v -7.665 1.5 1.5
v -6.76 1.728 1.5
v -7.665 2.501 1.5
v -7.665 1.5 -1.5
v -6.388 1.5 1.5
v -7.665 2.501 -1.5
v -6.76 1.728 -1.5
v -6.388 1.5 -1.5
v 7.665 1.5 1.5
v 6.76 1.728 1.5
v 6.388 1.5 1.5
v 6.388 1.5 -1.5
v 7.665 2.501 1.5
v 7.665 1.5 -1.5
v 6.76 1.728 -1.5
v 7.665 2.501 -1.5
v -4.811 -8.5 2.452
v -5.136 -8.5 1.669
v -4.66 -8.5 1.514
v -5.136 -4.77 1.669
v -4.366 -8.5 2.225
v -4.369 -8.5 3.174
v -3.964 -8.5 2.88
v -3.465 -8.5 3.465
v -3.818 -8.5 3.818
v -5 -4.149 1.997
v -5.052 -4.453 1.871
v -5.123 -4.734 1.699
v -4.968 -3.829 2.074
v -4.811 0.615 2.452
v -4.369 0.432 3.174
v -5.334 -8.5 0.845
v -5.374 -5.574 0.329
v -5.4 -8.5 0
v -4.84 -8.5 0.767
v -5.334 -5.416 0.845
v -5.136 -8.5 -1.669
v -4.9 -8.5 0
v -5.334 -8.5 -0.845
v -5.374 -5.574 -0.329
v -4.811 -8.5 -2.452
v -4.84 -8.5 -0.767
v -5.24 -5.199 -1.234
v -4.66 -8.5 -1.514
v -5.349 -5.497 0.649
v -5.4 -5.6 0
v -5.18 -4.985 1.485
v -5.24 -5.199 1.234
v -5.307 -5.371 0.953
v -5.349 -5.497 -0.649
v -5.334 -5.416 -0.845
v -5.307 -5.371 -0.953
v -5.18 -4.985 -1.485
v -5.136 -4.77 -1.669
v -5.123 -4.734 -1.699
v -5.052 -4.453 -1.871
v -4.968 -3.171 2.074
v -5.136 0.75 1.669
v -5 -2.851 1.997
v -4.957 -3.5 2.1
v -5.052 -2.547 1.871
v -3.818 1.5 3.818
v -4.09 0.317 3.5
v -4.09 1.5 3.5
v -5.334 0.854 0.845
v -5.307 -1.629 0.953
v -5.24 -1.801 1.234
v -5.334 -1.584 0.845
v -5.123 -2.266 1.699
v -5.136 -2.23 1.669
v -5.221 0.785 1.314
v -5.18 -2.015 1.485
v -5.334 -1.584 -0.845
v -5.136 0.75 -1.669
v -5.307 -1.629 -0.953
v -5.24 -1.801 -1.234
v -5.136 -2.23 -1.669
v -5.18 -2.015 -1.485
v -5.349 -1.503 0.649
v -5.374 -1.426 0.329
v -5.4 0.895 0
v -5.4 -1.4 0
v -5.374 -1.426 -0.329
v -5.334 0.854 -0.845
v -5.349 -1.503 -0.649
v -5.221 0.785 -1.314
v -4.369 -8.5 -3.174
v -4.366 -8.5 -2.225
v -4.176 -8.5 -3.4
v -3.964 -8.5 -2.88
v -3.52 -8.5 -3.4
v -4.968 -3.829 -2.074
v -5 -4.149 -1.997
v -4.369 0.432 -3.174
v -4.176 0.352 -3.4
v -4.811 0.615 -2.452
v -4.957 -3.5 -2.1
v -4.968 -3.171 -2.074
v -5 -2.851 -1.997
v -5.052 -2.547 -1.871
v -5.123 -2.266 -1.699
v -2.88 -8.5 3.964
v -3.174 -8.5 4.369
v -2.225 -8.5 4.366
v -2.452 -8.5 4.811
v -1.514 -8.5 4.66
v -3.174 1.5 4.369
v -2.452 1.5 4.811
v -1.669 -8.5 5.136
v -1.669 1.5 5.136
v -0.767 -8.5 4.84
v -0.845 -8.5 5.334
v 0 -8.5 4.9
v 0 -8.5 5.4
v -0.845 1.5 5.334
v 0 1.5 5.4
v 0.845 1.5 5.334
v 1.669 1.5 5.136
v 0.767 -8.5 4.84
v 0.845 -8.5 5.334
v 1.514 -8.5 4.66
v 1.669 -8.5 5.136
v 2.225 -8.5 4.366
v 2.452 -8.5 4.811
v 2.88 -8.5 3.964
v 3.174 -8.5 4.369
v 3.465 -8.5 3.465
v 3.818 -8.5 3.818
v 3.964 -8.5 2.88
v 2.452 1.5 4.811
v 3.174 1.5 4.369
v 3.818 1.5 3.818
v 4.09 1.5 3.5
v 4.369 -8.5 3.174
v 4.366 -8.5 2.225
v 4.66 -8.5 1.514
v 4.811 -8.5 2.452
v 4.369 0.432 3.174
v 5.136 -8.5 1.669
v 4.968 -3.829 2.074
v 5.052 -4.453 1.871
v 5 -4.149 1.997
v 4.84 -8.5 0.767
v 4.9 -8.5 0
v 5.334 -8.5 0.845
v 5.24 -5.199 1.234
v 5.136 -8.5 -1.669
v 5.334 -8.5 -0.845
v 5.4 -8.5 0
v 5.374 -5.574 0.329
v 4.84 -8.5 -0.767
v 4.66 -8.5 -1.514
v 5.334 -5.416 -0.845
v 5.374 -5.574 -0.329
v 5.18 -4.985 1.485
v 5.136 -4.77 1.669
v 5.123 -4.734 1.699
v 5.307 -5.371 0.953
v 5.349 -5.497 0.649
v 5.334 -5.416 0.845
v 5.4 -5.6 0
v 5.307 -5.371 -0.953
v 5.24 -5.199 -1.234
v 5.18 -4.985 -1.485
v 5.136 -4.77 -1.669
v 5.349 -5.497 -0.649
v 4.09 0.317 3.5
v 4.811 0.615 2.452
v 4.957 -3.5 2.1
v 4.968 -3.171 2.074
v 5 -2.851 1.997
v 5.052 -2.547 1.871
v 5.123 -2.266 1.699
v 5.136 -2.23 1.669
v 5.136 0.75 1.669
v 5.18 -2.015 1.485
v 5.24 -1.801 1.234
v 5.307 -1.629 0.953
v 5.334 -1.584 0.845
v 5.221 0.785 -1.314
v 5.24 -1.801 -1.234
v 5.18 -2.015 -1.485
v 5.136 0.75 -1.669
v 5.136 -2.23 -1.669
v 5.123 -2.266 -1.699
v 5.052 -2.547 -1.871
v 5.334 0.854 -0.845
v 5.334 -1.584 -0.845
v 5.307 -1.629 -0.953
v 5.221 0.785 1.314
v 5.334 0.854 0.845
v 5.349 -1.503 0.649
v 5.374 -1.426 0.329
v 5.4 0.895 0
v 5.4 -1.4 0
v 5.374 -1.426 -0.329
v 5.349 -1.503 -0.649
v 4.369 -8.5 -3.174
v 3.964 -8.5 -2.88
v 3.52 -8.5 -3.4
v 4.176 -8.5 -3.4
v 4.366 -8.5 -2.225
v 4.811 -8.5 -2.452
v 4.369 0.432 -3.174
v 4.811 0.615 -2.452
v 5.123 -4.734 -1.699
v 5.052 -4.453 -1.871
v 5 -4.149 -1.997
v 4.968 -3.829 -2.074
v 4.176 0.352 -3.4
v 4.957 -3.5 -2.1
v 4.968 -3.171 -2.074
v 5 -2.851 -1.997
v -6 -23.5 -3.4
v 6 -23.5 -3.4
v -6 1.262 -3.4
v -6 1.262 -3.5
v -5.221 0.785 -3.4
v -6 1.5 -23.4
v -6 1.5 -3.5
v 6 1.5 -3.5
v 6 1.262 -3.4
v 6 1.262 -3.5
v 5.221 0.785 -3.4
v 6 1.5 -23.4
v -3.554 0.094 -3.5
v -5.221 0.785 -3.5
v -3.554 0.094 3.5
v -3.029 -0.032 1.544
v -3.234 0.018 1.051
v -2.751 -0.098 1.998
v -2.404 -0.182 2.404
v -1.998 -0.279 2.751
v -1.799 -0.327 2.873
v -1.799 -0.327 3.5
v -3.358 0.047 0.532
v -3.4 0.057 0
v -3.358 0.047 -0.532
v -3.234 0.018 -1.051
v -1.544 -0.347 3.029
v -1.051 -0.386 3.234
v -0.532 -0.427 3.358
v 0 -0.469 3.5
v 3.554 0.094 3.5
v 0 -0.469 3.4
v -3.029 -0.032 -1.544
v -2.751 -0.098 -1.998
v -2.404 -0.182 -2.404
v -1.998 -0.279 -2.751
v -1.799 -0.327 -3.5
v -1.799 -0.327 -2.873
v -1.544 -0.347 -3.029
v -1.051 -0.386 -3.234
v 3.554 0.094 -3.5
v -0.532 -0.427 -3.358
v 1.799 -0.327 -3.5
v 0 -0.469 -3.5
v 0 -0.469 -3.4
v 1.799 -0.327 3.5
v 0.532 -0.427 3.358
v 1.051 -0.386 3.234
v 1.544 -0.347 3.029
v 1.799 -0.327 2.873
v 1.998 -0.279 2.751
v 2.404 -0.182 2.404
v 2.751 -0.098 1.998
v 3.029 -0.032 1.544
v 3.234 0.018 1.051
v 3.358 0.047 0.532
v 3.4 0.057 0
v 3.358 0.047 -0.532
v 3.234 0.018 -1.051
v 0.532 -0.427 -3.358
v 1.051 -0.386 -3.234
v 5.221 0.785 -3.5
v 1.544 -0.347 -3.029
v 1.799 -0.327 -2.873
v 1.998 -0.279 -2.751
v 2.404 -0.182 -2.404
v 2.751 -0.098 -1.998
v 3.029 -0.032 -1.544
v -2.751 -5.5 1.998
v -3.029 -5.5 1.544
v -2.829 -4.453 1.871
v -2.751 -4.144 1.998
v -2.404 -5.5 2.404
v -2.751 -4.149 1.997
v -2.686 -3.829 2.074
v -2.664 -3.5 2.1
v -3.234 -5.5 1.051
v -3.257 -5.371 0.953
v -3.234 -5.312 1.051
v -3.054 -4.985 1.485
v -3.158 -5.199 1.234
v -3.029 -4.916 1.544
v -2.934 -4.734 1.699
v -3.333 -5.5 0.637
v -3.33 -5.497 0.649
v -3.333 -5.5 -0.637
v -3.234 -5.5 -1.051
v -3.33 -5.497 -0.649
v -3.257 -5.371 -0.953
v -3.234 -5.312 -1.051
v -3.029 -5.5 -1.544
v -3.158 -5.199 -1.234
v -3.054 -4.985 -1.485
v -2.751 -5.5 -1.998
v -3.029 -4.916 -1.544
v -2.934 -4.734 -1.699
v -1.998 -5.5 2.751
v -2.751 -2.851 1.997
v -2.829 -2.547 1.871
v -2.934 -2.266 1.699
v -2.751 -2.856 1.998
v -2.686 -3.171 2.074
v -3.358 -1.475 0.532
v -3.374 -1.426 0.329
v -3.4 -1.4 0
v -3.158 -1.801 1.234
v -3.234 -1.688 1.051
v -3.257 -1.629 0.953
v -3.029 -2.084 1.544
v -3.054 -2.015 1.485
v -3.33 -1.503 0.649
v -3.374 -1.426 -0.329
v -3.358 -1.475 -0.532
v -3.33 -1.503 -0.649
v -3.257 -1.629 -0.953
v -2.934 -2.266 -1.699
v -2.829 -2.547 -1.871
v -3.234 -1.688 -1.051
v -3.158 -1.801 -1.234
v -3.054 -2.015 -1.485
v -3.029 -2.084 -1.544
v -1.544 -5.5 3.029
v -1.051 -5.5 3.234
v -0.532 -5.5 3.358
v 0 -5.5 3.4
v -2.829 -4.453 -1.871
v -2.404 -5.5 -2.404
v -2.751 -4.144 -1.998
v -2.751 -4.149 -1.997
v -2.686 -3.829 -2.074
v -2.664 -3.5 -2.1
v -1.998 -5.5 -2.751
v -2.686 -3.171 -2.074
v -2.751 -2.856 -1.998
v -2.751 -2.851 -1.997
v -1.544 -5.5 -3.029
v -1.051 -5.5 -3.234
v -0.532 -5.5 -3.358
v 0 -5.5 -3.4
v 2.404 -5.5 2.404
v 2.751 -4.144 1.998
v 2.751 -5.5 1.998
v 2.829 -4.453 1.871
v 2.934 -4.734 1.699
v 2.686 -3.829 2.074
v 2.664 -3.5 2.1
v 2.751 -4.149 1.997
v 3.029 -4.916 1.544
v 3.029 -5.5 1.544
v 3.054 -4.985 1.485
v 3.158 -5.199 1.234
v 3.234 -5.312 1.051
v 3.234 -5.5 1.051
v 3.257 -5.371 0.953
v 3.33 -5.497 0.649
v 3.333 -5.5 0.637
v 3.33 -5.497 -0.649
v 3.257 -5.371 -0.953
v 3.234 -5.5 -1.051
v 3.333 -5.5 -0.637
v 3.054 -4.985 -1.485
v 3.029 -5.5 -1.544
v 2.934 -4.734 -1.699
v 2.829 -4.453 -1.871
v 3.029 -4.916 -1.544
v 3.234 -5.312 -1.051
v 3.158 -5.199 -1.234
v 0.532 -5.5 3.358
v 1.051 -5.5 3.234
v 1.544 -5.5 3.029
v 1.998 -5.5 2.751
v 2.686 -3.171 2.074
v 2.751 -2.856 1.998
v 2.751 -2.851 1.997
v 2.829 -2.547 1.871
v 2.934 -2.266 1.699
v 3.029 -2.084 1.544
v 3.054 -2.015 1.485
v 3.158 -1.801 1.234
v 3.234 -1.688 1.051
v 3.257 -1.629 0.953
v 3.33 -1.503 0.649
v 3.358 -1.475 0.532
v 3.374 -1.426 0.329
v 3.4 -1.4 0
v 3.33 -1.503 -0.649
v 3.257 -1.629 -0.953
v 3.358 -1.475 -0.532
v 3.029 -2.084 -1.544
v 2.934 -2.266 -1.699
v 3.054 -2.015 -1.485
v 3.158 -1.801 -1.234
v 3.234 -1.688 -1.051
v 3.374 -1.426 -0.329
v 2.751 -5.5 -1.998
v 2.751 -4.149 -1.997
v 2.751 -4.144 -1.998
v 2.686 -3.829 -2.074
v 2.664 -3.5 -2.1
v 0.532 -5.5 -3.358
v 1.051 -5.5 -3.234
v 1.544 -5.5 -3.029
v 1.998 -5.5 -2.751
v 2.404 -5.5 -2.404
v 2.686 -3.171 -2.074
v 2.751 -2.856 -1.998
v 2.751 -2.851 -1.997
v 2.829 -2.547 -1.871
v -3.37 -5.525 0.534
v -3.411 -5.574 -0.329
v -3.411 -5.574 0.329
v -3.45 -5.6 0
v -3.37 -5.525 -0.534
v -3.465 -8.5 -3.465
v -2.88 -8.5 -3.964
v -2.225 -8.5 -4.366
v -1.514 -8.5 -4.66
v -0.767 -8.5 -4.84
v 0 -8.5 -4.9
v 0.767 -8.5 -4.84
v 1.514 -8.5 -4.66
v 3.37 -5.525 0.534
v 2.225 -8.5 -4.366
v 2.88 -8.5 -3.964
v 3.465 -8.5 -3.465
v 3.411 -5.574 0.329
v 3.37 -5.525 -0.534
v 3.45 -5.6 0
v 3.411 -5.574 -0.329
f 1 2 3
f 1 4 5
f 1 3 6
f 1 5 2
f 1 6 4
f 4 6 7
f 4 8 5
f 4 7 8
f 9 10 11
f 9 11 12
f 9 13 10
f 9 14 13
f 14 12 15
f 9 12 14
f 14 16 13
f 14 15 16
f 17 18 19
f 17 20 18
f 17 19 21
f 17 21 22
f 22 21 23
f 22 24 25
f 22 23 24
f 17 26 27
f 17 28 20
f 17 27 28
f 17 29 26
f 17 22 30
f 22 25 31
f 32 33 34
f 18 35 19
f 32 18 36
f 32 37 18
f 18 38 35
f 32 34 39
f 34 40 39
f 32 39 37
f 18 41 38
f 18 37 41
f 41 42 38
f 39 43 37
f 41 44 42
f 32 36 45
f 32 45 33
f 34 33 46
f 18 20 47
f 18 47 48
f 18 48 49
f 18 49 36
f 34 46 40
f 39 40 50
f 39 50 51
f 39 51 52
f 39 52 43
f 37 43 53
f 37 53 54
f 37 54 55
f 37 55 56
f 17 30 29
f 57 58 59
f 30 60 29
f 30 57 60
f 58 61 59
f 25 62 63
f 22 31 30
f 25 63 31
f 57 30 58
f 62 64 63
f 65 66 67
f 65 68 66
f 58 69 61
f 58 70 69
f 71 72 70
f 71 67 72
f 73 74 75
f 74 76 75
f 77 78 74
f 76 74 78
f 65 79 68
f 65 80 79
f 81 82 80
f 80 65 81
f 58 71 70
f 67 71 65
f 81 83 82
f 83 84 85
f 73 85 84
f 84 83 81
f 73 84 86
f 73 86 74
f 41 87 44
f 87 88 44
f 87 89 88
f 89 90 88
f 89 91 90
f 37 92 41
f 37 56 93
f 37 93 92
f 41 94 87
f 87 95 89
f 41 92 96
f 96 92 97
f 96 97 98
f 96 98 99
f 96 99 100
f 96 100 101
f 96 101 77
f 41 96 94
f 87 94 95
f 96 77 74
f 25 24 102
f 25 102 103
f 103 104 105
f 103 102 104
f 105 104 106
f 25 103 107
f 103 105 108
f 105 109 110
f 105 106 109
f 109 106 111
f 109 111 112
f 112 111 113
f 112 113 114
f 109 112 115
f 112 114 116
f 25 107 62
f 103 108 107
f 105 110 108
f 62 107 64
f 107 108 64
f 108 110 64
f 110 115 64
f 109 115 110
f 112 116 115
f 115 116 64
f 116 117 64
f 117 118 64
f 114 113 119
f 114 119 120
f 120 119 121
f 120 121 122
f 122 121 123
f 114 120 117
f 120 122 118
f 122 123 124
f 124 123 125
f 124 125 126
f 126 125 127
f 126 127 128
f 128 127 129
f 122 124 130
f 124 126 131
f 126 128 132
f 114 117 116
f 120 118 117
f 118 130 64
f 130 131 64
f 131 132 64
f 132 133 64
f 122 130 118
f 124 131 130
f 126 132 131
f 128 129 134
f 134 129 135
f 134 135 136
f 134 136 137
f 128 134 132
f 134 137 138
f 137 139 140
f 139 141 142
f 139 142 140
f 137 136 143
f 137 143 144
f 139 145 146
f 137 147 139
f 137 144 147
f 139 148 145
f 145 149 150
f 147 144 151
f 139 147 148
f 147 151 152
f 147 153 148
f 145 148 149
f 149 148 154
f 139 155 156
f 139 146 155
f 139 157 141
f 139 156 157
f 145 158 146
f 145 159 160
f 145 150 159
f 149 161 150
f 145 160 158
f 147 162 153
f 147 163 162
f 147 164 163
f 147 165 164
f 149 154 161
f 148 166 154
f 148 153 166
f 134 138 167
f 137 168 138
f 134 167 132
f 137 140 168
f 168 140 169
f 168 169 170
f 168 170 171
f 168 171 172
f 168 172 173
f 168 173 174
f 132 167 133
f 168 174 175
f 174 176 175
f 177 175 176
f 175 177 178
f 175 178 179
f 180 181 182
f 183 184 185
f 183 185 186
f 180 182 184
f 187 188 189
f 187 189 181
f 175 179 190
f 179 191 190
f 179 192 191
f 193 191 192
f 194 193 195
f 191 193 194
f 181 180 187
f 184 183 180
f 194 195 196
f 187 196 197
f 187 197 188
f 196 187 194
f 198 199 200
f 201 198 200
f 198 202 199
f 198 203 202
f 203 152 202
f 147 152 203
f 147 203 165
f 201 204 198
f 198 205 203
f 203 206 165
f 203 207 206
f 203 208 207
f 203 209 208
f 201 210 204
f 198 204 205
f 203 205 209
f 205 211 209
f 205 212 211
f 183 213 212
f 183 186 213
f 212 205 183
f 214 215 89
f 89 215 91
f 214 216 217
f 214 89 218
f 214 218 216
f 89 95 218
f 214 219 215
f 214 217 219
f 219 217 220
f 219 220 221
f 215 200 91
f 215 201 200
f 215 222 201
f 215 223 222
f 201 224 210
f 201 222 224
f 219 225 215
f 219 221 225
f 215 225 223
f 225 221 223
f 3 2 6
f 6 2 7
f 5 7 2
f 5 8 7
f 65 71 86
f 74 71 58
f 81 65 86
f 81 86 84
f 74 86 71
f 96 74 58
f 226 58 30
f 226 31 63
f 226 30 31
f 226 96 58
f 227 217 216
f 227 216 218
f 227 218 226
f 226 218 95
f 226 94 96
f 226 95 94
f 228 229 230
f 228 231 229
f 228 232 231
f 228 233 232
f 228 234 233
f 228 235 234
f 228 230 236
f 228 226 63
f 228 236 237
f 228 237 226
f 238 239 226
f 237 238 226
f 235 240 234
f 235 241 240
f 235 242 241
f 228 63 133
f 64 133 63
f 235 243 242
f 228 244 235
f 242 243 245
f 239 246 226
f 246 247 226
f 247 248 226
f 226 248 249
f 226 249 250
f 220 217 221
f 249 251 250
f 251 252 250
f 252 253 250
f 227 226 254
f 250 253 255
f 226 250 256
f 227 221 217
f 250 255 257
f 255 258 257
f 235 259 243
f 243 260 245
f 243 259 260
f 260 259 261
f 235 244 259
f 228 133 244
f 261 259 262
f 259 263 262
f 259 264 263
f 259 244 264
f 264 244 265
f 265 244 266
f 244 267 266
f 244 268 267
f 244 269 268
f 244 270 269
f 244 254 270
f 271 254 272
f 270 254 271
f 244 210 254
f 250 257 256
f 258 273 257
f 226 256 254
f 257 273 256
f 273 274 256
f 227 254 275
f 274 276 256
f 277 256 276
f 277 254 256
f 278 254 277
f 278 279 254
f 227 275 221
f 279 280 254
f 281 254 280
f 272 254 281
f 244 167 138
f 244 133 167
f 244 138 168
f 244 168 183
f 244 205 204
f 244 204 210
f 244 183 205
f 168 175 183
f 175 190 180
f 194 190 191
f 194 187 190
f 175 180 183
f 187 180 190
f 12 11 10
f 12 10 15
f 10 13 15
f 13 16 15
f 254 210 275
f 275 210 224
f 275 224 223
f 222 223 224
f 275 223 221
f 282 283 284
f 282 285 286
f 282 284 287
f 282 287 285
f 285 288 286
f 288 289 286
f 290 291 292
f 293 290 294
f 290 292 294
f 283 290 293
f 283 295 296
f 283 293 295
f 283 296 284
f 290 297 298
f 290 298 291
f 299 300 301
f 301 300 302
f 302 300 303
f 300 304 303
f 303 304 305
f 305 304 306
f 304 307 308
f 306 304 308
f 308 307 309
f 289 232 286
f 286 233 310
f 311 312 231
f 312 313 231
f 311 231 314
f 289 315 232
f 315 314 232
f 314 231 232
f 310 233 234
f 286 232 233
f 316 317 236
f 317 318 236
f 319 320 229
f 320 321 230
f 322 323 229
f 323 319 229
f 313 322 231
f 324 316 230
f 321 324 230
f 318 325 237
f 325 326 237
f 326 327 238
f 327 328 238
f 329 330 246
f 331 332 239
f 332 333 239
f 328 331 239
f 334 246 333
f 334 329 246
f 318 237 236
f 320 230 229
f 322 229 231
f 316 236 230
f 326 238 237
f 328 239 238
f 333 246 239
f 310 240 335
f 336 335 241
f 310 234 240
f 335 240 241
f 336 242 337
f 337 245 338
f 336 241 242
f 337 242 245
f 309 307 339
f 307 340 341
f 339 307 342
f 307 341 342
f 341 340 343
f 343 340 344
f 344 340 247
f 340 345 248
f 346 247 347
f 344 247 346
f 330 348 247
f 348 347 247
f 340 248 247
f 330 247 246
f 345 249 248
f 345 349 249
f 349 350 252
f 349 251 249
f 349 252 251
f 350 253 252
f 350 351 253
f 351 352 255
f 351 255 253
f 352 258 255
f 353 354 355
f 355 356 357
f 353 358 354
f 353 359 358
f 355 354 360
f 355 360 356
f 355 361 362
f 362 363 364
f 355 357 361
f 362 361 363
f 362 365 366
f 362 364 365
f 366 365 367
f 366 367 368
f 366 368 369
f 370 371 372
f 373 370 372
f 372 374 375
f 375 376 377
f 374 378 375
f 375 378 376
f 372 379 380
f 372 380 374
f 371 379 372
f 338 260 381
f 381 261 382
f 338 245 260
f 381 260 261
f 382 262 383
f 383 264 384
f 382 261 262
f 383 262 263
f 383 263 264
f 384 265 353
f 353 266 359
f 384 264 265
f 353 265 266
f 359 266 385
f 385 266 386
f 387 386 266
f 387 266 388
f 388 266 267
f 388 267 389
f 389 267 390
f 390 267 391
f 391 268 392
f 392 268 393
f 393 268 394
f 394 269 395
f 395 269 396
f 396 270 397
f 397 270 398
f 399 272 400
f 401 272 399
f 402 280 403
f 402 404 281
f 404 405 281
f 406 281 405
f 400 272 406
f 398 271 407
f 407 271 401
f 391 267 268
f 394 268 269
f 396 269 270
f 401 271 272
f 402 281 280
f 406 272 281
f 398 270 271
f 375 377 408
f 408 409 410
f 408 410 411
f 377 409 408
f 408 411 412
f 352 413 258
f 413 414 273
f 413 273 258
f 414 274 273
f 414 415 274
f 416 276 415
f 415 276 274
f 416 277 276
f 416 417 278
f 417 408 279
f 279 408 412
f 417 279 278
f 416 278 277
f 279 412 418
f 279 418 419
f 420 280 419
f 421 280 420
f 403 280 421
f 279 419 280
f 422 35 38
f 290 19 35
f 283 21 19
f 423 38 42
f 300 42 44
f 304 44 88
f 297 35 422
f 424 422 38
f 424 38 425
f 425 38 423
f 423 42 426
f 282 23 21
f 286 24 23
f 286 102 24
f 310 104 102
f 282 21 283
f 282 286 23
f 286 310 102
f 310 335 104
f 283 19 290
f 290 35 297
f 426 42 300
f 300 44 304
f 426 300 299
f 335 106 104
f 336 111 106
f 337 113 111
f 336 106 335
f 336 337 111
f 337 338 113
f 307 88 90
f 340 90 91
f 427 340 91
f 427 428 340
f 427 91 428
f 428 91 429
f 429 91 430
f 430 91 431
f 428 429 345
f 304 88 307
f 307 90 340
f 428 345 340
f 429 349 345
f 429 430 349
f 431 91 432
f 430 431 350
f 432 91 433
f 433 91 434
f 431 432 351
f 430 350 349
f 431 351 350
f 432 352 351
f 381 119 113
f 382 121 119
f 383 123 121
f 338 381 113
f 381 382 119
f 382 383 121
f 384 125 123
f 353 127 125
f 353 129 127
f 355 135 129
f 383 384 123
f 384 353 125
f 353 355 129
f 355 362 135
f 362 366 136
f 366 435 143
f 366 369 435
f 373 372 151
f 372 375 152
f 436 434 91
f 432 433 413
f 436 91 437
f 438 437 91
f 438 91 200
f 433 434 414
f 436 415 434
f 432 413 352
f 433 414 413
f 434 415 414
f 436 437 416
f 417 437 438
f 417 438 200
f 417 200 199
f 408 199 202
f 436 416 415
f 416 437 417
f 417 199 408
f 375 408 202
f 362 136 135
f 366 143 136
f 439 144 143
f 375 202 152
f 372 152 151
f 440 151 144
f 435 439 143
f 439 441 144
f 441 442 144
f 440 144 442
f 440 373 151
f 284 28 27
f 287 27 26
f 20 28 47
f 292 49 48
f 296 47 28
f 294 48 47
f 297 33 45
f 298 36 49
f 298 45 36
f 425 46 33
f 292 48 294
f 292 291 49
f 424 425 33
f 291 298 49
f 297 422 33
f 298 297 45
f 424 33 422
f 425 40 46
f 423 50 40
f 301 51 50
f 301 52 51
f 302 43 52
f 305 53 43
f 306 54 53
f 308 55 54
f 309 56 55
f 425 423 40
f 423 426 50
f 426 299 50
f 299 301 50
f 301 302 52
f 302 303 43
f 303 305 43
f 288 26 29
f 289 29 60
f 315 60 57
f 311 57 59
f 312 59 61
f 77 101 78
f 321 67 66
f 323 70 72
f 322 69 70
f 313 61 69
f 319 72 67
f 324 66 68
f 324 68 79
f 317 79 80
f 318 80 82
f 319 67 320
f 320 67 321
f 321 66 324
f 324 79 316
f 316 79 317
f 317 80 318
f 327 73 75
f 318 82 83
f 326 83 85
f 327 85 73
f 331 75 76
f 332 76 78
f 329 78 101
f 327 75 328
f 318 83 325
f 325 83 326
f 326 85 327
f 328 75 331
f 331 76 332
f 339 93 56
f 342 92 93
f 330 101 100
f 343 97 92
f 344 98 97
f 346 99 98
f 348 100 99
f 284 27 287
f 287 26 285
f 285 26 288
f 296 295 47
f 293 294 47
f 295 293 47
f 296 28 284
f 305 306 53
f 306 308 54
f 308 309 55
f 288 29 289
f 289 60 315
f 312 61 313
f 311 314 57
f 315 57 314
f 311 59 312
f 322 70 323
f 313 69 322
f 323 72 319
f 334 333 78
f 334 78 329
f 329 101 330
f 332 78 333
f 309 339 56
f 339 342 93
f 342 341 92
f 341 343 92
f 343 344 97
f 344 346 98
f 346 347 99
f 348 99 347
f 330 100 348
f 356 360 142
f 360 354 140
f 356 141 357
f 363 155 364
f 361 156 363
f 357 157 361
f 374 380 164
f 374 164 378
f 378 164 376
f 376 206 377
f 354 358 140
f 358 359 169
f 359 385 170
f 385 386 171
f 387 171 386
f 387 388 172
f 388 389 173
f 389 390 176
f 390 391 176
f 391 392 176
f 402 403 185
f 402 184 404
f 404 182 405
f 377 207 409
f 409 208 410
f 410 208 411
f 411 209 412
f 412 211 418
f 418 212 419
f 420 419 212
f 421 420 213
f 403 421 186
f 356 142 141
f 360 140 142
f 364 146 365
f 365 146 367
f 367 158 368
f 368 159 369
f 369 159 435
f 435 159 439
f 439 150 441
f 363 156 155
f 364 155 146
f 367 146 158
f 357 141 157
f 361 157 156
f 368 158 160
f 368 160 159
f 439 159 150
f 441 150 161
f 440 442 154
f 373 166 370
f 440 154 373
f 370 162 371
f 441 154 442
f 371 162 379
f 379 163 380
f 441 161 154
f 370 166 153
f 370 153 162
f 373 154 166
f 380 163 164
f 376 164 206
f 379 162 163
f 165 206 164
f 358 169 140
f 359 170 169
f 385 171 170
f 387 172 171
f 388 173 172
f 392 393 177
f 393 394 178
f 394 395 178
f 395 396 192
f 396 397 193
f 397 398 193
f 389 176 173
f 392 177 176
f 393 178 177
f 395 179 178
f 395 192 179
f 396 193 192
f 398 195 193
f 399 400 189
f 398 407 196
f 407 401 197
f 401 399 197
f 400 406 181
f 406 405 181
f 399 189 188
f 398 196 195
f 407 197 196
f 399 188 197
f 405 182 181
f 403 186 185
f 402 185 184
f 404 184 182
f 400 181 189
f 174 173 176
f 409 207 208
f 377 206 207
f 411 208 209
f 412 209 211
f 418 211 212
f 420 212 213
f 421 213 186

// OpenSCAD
// file: tower_sheave.scad
// ====================================================================
// Tower End Sheave Wheel (100% 3D-Printable - Flat on Bed at Z = 0)
// Used at Tower A and Tower B.
// - High flanges to retain cable line securely.
// - 5mm central bore: spins on an M4/M5 bolt in Phase 1;
//   directly accepts a NEMA 17 D-shaft in Phase 2 (includes M3 grub screw hole).
// ====================================================================

$fn = 60;

// Dimensions (mm) - Scaled to 1/3 size (reduced size by 2/3rd)
sheave_outer_dia = 18.0; // Outer flange diameter [scaled from 54mm]
sheave_pitch_dia = 14.67;// Cable track diameter [scaled from 44mm]
sheave_width     = 4.0;  // Total sheave rim width [scaled from 8mm]
hub_h            = 6.0;  // Extended center hub [scaled from 12mm]
bore_dia         = 5.2;  // 5mm motor shaft / M5 screw clearance
grub_screw_dia   = 3.0;  // M3 set/grub screw for Phase 2 motor lock
hub_lift         = (hub_h - sheave_width) / 2; // 1.0mm standoff from bed


module tower_sheave() {
    difference() {
        union() {
            // Main sheave disc (lifted by hub standoff)
            translate([0, 0, hub_lift])
                cylinder(d = sheave_outer_dia, h = sheave_width);
            // Extended center hub (starts at Z = 0)
            cylinder(d = 14.0, h = hub_h);
        }
        
        // Center shaft bore
        translate([0, 0, -1])
            cylinder(d = bore_dia, h = hub_h + 2);
        
        // Deep cable groove
        translate([0, 0, hub_h / 2])
            rotate_extrude(convexity = 10) {
                translate([sheave_pitch_dia / 2, 0, 0])
                    polygon([
                        [-2.0, 0],
                        [6.0, 3.2],
                        [6.0, -3.2]
                    ]);
            }
        
        // Radial M3 grub screw hole (for clamping onto motor shaft in Phase 2)
        translate([0, 0, hub_h / 2])
            rotate([90, 0, 0])
                cylinder(d = grub_screw_dia, h = 20, center = false);
            
        // Decorative weight-reduction spoke cutouts (holiday snowflake / star style)
        for (a = [0 : 60 : 300]) {
            rotate([0, 0, a])
                translate([16, 0, -1])
                    cylinder(d = 8, h = hub_h + 2);
        }
    }
}

// Render flat on bed at Z = 0
tower_sheave();
// main file
// ====================================================================
// Tower Head Station A: Drive-Ready Station (100% 3D-Printable)
// 
// Dual-Role Design:
// - Phase 1: Mounts a passive sheave wheel on an M5 bolt axle.
// - Phase 2: Directly bolts to a NEMA 17 stepper motor (4x M3 holes on 31mm centers)
//   without needing any modifications or reprints!
// Bottom has a 20mm socket to mount onto a wooden dowel, PVC pipe, or printed truss.
// ====================================================================

use <tower_sheave.scad>;

$fn = 40;

// Dimensions - Scaled to 1/3 envelope size (reduced size by 2/3rd)
bracket_w        = 15.33; // Width of mounting face [scaled from 46mm]
bracket_h        = 17.33; // Height of mounting plate [scaled from 52mm]
plate_th         = 3.0;   // Thickness of plate [scaled from 6mm]
nema17_hole_dist = 31.0;  // Standard NEMA 17 mounting hole spacing preserved
nema17_pilot_d   = 23.0;  // Standard NEMA 17 center collar clearance preserved
m3_hole_d        = 3.4;   // M3 bolt clearance
socket_inner_d   = 6.8;   // Fits scaled mast/dowel [scaled from 20.4mm]
socket_wall      = 2.0;   // Socket wall thickness
socket_depth     = 10.0;  // Socket depth [scaled from 25mm]


module tower_head_a() {
    difference() {
        union() {
            // Main motor/axle vertical mounting faceplate
            translate([0, 0, bracket_h / 2])
                cube([bracket_w, plate_th, bracket_h], center = true);

            // Overhead cable guide horn
            translate([0, 10, bracket_h - 4])
                cube([bracket_w, 20 + plate_th, 8], center = true);

            // Lower mast mounting socket
            translate([0, 0, -socket_depth / 2])
                cylinder(d = socket_inner_d + (socket_wall * 2), h = socket_depth, center = true);
                
            // Triangular gussets for structural rigidity
            translate([0, socket_inner_d / 2, 0])
                rotate([0, 90, 0])
                    linear_extrude(height = 12, center = true)
                        polygon([[0, 0], [25, 0], [0, 20]]);
        }

        // Center pilot hole (for motor collar or Phase 1 M5 axle bolt)
        translate([0, 0, bracket_h * 0.55])
            rotate([90, 0, 0])
                cylinder(d = nema17_pilot_d, h = plate_th + 4, center = true);

        // 4x NEMA 17 mounting holes (31mm square pattern)
        for (dx = [-nema17_hole_dist / 2, nema17_hole_dist / 2]) {
            for (dz = [-nema17_hole_dist / 2, nema17_hole_dist / 2]) {
                translate([dx, 0, (bracket_h * 0.55) + dz])
                    rotate([90, 0, 0])
                        cylinder(d = m3_hole_d, h = plate_th + 4, center = true);
            }
        }

        // Cable path slot through the overhead horn
        translate([0, 10, bracket_h - 4])
            cube([20, 25, 12], center = true);

        // Mast socket cavity (bottom) with 45-degree self-aligning lead-in chamfer
        translate([0, 0, -socket_depth / 2 - 1])
            cylinder(d = socket_inner_d, h = socket_depth + 2, center = true);
        translate([0, 0, -socket_depth])
            cylinder(d1 = socket_inner_d + 3.0, d2 = socket_inner_d, h = 3.0);

        // Mast cross-pin clamp hole
        translate([0, 0, -socket_depth / 2])
            rotate([0, 90, 0])
                cylinder(d = 4.2, h = socket_inner_d + 12, center = true);

        // Embossed Station Identification on face: "A - DRIVE"
        translate([-bracket_w / 2 + 3, -plate_th / 2 - 0.1, 4])
            rotate([90, 0, 0])
                linear_extrude(height = 0.8)
                    text("A - DRIVE", size = 4.2, font = "Liberation Sans:style=Bold");
    }
}

// Visual preview with sheave wheel attached
module preview_station_a() {
    tower_head_a();
    #translate([0, plate_th / 2 + 8, bracket_h * 0.55])
        rotate([90, 0, 0])
            tower_sheave();
}

// ====================================================================
// Selection
// ====================================================================
// "print"      -> Upright resting flat on socket rim at Z = 0
// "print_flat" -> Laid flat on its rear motor plate at Z = 0 (ZERO supports!)
// "preview"    -> Upright with sheave wheel attached
mode = "print_flat";

if (mode == "print") {
    translate([0, 0, socket_depth])
        tower_head_a();
} else if (mode == "print_flat") {
    // Laid flat on rear face of motor plate at Z = 0
    translate([0, plate_th / 2, 0])
        rotate([-90, 0, 0])
            tower_head_a();
} else if (mode == "preview") {
    preview_station_a();
}
